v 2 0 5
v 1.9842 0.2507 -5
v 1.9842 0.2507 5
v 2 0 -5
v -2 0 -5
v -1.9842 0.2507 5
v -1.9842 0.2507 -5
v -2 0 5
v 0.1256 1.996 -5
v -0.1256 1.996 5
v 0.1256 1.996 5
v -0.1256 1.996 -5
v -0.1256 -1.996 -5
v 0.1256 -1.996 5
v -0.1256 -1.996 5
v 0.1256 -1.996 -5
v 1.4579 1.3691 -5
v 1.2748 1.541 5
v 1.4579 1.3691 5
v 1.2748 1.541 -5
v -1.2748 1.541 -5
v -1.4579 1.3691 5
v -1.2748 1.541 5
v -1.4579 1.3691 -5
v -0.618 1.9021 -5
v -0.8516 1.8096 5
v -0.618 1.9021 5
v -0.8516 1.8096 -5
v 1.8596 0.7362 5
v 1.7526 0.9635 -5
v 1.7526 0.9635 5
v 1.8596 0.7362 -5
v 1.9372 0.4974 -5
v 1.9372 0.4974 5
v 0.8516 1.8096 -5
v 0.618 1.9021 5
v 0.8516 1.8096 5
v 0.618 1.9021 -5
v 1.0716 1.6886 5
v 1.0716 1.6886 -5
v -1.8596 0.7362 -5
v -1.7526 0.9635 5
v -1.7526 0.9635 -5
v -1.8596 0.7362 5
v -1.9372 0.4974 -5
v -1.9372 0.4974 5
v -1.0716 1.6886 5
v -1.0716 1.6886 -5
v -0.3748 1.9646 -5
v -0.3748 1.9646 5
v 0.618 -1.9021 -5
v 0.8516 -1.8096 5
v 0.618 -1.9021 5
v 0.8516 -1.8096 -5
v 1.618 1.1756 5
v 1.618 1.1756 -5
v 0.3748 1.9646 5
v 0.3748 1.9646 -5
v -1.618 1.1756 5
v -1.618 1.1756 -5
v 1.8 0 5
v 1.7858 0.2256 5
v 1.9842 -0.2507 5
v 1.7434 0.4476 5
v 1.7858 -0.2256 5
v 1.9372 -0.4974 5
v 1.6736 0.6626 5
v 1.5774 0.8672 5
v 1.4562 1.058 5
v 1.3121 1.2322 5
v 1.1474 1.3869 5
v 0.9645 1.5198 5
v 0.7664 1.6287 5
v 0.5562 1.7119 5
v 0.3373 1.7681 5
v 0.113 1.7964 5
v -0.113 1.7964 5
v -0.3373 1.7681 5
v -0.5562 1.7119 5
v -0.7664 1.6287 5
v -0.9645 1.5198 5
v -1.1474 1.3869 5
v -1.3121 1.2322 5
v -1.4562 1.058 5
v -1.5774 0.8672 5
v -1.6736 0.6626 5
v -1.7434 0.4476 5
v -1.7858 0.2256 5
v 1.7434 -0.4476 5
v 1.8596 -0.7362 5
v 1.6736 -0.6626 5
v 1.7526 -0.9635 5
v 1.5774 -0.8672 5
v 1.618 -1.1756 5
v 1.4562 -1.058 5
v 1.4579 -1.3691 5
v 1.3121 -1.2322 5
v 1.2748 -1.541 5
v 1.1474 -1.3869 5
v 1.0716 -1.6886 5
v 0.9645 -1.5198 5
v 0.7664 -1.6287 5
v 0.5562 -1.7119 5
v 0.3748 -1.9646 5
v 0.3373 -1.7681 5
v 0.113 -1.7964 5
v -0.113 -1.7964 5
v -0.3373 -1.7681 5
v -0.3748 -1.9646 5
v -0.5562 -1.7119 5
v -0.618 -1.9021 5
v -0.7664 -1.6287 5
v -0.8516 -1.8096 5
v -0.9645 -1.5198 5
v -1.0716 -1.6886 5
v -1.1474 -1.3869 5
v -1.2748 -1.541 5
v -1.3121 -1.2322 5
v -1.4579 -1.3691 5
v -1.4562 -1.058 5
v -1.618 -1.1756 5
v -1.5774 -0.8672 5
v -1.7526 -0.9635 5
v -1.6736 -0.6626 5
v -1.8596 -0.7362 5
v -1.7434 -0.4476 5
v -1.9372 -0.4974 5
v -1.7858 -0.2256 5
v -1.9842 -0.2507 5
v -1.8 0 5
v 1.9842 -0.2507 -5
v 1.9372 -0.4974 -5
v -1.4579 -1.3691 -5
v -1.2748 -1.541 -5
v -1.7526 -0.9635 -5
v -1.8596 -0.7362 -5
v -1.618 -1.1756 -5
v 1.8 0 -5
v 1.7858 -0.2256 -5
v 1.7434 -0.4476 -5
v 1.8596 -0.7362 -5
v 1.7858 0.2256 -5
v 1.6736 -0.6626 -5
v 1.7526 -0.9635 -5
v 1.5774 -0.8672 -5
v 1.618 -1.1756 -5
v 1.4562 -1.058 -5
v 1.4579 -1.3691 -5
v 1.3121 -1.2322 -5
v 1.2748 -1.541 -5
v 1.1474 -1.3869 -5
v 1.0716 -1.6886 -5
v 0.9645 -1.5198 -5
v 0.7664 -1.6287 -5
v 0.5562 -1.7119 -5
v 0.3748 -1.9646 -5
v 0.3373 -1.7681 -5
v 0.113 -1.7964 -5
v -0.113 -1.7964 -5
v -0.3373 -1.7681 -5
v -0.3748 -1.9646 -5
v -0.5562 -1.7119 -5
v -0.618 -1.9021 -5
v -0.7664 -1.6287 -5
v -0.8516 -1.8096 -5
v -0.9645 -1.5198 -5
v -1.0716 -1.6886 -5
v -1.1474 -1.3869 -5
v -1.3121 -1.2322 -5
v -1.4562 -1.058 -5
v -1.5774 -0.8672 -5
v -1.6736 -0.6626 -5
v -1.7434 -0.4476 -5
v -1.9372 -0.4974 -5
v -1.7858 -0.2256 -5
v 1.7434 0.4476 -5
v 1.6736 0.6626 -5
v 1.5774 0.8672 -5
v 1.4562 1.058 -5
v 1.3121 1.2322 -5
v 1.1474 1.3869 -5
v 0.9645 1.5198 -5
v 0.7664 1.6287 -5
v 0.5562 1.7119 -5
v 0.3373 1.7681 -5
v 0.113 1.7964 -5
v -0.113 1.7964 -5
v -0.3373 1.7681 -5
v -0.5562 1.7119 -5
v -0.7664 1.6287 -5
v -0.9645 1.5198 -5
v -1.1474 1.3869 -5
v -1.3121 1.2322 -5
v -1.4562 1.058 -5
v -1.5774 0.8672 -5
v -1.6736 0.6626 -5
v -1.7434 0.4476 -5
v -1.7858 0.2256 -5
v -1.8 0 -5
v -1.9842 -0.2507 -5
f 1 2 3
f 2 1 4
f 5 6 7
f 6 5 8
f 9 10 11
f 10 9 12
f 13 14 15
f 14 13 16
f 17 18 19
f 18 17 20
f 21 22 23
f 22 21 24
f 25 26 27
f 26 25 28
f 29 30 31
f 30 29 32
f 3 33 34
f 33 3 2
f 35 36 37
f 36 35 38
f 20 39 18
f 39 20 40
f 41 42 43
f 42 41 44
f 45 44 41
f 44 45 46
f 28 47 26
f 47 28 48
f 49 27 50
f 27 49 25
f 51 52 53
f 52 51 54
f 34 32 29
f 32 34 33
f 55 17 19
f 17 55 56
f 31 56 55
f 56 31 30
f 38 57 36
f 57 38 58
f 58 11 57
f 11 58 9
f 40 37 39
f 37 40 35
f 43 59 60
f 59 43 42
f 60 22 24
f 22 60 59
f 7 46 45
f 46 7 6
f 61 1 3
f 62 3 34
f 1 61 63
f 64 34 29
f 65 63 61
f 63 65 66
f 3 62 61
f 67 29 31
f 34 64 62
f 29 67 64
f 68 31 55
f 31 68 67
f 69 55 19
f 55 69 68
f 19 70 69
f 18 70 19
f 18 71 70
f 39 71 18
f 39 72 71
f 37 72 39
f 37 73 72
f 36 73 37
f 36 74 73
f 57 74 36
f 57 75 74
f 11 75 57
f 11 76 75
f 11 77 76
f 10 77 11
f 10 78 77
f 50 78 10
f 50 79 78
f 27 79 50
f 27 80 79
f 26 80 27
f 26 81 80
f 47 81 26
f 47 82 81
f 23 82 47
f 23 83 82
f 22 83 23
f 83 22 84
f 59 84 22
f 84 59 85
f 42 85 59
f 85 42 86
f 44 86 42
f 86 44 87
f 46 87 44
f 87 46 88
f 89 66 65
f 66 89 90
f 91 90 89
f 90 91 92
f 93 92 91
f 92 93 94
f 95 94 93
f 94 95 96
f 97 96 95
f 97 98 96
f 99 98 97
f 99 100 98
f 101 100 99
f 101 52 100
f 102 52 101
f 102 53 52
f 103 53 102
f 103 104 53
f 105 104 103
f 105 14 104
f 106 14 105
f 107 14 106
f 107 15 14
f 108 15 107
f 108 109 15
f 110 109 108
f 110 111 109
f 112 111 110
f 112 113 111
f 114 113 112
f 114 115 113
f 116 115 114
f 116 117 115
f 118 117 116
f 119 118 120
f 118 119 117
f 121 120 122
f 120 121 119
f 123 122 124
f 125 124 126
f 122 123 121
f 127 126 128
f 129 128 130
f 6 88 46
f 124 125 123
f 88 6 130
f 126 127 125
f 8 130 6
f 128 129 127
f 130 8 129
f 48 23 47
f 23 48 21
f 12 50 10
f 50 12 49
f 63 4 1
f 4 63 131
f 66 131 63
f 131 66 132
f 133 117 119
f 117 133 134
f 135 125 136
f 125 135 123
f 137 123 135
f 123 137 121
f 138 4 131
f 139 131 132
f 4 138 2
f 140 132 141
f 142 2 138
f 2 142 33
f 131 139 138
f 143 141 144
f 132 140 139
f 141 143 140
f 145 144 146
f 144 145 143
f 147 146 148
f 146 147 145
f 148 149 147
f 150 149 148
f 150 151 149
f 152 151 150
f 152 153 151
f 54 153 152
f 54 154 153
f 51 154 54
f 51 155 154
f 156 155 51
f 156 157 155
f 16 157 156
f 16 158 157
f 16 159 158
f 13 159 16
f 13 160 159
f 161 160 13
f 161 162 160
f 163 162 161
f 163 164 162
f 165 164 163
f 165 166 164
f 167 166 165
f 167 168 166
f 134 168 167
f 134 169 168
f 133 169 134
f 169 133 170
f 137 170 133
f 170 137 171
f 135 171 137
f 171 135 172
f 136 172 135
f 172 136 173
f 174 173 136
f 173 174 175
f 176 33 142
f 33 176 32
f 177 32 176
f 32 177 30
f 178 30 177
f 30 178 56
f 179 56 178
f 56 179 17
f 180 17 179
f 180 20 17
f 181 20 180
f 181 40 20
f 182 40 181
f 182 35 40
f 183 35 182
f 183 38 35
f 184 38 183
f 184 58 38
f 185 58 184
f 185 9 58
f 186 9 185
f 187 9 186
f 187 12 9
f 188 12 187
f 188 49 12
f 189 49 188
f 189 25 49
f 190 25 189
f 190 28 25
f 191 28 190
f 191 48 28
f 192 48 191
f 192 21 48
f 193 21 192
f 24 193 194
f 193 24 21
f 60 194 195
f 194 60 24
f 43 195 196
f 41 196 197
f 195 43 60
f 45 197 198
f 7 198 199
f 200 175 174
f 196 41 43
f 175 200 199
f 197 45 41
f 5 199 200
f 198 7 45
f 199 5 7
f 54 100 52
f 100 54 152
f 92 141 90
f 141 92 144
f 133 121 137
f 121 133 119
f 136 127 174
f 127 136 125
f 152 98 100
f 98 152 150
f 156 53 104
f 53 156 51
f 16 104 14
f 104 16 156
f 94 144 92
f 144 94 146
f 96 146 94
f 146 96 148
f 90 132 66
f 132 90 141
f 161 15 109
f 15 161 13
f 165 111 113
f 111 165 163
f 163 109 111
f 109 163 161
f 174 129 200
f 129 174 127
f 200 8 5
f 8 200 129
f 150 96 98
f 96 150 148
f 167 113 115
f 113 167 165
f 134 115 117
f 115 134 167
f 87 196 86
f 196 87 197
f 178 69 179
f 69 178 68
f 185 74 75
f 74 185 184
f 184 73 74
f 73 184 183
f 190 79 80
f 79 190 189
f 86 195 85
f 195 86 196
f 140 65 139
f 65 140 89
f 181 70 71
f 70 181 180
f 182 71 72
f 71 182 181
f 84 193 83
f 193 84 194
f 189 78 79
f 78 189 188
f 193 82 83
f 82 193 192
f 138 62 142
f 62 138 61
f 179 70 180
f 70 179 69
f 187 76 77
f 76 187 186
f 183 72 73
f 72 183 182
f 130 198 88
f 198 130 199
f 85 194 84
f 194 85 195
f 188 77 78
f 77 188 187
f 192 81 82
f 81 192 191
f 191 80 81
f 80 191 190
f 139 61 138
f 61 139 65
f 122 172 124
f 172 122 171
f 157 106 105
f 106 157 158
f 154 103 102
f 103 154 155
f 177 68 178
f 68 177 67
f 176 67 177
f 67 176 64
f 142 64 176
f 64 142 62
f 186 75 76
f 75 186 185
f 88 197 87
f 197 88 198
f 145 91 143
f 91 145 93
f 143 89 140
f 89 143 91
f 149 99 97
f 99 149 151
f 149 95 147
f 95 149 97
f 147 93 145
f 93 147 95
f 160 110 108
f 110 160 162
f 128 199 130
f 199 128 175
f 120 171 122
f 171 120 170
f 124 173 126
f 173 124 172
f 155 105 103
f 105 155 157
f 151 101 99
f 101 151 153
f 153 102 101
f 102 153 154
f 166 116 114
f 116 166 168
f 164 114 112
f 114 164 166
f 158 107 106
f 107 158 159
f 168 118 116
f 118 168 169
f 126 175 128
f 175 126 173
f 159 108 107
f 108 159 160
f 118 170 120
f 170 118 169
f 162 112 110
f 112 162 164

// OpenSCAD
$fn = 50;


difference() {
	union() {
		translate(v = [0, 0, -5.0000000000]) {
			cylinder(h = 10, r = 2.0000000000);
		}
	}
	union() {
		translate(v = [0, 0, -100.0000000000]) {
			cylinder(h = 200, r = 1.8000000000);
		}
	}
}
